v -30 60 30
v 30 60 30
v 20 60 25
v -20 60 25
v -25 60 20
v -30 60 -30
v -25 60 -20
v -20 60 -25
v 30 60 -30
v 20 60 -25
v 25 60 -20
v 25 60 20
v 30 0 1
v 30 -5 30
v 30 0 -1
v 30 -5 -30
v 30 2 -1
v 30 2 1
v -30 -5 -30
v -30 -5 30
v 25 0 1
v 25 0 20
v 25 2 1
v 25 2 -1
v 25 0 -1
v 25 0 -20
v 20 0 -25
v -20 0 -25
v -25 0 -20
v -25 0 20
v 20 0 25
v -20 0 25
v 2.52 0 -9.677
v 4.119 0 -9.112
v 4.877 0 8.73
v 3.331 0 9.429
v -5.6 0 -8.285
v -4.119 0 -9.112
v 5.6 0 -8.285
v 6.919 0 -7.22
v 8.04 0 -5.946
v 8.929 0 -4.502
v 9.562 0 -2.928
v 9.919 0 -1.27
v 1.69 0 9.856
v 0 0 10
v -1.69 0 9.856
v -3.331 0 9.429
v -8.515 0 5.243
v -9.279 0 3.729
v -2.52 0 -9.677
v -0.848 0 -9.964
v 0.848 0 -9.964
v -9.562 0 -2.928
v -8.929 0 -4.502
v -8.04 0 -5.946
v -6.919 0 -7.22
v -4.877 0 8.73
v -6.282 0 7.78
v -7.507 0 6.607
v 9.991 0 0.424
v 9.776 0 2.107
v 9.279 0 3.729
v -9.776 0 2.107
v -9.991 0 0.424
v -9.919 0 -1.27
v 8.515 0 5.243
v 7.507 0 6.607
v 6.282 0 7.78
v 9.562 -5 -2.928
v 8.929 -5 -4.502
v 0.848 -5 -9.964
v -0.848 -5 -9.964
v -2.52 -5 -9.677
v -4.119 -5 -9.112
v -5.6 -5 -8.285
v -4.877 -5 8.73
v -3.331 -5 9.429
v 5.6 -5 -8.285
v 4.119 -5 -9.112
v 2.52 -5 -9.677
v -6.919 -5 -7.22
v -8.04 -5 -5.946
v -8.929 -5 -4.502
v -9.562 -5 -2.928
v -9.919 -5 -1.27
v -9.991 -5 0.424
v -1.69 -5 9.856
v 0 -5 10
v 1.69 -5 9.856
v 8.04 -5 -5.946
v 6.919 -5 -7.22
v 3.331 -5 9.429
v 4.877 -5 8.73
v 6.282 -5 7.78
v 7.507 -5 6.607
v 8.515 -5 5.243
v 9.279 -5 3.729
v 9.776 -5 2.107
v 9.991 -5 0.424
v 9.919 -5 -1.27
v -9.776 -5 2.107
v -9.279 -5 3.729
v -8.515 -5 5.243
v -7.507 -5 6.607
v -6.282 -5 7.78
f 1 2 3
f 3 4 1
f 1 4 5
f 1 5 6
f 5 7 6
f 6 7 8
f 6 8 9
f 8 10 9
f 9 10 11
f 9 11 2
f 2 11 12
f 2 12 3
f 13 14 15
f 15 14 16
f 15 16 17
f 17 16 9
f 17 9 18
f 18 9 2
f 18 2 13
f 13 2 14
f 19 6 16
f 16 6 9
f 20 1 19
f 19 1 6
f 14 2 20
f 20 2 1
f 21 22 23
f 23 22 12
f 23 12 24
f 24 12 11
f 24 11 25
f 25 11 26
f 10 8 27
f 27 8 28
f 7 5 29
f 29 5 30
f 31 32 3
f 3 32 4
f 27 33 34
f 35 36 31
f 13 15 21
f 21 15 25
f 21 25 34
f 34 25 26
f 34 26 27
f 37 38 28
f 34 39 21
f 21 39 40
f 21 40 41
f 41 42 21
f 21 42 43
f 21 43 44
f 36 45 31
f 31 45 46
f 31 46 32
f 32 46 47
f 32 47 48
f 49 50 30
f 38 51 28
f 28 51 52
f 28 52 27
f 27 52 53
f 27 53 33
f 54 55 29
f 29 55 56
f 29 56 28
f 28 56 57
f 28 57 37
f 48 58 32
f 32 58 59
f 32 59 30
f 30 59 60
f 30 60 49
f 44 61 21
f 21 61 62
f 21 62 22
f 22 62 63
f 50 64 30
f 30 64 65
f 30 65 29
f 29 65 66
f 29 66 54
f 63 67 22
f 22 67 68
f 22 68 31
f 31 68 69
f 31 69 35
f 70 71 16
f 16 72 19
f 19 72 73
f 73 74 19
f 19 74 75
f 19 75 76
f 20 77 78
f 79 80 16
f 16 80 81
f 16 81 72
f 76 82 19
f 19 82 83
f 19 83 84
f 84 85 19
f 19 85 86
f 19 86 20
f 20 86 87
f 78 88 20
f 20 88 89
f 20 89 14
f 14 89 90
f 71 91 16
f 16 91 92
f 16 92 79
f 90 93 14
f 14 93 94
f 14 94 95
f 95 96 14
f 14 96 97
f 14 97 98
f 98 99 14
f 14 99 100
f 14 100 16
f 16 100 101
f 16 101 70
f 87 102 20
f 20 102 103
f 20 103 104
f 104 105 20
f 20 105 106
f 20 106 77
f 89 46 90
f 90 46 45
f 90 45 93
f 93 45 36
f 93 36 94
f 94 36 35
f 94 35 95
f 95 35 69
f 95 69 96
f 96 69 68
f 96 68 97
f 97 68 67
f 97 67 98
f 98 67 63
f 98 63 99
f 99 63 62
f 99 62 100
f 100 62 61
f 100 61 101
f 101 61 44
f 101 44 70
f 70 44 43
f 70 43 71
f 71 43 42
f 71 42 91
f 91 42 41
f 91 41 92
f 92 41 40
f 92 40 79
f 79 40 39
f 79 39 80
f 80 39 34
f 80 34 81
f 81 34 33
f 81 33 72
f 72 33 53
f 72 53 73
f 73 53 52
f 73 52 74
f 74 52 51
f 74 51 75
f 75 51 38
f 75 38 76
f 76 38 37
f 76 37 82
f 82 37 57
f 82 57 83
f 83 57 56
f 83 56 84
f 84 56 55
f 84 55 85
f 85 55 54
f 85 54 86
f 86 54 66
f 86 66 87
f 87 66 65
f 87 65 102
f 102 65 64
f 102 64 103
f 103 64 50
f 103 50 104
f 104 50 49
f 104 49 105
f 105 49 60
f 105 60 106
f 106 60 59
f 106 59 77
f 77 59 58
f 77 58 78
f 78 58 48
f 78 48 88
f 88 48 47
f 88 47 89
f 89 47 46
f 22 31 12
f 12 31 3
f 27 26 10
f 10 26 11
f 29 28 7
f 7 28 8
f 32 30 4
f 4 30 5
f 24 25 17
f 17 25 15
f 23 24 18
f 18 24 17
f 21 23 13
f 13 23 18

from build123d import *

# Parameters (mm, degrees)
SKETCH1_W           = 60
SKETCH1_H           = 60
SKETCH1_W_2         = 50
SKETCH1_H_2         = 50
BOSS_EXTRUDE1_DEPTH = 60
SKETCH2_W           = 60
SKETCH2_H           = 60
BOSS_EXTRUDE2_DEPTH = 5
SKETCH3_R           = 10
CUT_EXTRUDE1_DEPTH  = 6
CHAMFER4_SIZE       = 5
SKETCH7_W           = 2
SKETCH7_H           = 2
CUT_EXTRUDE3_DEPTH  = 5


with BuildPart() as part:
    # Sketch1 → Boss-Extrude1 (new body)
    with BuildSketch(Plane(origin=(0, 0, 0), x_dir=(1, 0, 0), z_dir=(0, 1, 0))):
        Rectangle(SKETCH1_W, SKETCH1_H)
        Rectangle(SKETCH1_W_2, SKETCH1_H_2, mode=Mode.SUBTRACT)
    extrude(amount=BOSS_EXTRUDE1_DEPTH)

    # Sketch2 → Boss-Extrude2 (add)
    with BuildSketch(Plane.XZ):
        Rectangle(SKETCH2_W, SKETCH2_H)
    extrude(amount=BOSS_EXTRUDE2_DEPTH)

    # Sketch3 → Cut-Extrude1 (cut, through all)
    with BuildSketch(Plane(origin=(0, 0, 0), x_dir=(1, 0, 0), z_dir=(0, 1, 0))):
        Circle(SKETCH3_R)
    extrude(amount=-CUT_EXTRUDE1_DEPTH, mode=Mode.SUBTRACT)

    # Chamfer4
    chamfer4_edges = [part.edges().sort_by_distance(p)[0] for p in [
        (25, 30, 25),
        (25, 30, -25),
        (-25, 30, -25),
        (-25, 30, 25),
    ]]
    chamfer(chamfer4_edges, length=CHAMFER4_SIZE)

    # Sketch7 → Cut-Extrude3 (cut)
    with BuildSketch(Plane.ZY.offset(-25)):
        with Locations((0, 1)):
            Rectangle(SKETCH7_W, SKETCH7_H)
    extrude(amount=-CUT_EXTRUDE3_DEPTH, mode=Mode.SUBTRACT)


solid = part.part
